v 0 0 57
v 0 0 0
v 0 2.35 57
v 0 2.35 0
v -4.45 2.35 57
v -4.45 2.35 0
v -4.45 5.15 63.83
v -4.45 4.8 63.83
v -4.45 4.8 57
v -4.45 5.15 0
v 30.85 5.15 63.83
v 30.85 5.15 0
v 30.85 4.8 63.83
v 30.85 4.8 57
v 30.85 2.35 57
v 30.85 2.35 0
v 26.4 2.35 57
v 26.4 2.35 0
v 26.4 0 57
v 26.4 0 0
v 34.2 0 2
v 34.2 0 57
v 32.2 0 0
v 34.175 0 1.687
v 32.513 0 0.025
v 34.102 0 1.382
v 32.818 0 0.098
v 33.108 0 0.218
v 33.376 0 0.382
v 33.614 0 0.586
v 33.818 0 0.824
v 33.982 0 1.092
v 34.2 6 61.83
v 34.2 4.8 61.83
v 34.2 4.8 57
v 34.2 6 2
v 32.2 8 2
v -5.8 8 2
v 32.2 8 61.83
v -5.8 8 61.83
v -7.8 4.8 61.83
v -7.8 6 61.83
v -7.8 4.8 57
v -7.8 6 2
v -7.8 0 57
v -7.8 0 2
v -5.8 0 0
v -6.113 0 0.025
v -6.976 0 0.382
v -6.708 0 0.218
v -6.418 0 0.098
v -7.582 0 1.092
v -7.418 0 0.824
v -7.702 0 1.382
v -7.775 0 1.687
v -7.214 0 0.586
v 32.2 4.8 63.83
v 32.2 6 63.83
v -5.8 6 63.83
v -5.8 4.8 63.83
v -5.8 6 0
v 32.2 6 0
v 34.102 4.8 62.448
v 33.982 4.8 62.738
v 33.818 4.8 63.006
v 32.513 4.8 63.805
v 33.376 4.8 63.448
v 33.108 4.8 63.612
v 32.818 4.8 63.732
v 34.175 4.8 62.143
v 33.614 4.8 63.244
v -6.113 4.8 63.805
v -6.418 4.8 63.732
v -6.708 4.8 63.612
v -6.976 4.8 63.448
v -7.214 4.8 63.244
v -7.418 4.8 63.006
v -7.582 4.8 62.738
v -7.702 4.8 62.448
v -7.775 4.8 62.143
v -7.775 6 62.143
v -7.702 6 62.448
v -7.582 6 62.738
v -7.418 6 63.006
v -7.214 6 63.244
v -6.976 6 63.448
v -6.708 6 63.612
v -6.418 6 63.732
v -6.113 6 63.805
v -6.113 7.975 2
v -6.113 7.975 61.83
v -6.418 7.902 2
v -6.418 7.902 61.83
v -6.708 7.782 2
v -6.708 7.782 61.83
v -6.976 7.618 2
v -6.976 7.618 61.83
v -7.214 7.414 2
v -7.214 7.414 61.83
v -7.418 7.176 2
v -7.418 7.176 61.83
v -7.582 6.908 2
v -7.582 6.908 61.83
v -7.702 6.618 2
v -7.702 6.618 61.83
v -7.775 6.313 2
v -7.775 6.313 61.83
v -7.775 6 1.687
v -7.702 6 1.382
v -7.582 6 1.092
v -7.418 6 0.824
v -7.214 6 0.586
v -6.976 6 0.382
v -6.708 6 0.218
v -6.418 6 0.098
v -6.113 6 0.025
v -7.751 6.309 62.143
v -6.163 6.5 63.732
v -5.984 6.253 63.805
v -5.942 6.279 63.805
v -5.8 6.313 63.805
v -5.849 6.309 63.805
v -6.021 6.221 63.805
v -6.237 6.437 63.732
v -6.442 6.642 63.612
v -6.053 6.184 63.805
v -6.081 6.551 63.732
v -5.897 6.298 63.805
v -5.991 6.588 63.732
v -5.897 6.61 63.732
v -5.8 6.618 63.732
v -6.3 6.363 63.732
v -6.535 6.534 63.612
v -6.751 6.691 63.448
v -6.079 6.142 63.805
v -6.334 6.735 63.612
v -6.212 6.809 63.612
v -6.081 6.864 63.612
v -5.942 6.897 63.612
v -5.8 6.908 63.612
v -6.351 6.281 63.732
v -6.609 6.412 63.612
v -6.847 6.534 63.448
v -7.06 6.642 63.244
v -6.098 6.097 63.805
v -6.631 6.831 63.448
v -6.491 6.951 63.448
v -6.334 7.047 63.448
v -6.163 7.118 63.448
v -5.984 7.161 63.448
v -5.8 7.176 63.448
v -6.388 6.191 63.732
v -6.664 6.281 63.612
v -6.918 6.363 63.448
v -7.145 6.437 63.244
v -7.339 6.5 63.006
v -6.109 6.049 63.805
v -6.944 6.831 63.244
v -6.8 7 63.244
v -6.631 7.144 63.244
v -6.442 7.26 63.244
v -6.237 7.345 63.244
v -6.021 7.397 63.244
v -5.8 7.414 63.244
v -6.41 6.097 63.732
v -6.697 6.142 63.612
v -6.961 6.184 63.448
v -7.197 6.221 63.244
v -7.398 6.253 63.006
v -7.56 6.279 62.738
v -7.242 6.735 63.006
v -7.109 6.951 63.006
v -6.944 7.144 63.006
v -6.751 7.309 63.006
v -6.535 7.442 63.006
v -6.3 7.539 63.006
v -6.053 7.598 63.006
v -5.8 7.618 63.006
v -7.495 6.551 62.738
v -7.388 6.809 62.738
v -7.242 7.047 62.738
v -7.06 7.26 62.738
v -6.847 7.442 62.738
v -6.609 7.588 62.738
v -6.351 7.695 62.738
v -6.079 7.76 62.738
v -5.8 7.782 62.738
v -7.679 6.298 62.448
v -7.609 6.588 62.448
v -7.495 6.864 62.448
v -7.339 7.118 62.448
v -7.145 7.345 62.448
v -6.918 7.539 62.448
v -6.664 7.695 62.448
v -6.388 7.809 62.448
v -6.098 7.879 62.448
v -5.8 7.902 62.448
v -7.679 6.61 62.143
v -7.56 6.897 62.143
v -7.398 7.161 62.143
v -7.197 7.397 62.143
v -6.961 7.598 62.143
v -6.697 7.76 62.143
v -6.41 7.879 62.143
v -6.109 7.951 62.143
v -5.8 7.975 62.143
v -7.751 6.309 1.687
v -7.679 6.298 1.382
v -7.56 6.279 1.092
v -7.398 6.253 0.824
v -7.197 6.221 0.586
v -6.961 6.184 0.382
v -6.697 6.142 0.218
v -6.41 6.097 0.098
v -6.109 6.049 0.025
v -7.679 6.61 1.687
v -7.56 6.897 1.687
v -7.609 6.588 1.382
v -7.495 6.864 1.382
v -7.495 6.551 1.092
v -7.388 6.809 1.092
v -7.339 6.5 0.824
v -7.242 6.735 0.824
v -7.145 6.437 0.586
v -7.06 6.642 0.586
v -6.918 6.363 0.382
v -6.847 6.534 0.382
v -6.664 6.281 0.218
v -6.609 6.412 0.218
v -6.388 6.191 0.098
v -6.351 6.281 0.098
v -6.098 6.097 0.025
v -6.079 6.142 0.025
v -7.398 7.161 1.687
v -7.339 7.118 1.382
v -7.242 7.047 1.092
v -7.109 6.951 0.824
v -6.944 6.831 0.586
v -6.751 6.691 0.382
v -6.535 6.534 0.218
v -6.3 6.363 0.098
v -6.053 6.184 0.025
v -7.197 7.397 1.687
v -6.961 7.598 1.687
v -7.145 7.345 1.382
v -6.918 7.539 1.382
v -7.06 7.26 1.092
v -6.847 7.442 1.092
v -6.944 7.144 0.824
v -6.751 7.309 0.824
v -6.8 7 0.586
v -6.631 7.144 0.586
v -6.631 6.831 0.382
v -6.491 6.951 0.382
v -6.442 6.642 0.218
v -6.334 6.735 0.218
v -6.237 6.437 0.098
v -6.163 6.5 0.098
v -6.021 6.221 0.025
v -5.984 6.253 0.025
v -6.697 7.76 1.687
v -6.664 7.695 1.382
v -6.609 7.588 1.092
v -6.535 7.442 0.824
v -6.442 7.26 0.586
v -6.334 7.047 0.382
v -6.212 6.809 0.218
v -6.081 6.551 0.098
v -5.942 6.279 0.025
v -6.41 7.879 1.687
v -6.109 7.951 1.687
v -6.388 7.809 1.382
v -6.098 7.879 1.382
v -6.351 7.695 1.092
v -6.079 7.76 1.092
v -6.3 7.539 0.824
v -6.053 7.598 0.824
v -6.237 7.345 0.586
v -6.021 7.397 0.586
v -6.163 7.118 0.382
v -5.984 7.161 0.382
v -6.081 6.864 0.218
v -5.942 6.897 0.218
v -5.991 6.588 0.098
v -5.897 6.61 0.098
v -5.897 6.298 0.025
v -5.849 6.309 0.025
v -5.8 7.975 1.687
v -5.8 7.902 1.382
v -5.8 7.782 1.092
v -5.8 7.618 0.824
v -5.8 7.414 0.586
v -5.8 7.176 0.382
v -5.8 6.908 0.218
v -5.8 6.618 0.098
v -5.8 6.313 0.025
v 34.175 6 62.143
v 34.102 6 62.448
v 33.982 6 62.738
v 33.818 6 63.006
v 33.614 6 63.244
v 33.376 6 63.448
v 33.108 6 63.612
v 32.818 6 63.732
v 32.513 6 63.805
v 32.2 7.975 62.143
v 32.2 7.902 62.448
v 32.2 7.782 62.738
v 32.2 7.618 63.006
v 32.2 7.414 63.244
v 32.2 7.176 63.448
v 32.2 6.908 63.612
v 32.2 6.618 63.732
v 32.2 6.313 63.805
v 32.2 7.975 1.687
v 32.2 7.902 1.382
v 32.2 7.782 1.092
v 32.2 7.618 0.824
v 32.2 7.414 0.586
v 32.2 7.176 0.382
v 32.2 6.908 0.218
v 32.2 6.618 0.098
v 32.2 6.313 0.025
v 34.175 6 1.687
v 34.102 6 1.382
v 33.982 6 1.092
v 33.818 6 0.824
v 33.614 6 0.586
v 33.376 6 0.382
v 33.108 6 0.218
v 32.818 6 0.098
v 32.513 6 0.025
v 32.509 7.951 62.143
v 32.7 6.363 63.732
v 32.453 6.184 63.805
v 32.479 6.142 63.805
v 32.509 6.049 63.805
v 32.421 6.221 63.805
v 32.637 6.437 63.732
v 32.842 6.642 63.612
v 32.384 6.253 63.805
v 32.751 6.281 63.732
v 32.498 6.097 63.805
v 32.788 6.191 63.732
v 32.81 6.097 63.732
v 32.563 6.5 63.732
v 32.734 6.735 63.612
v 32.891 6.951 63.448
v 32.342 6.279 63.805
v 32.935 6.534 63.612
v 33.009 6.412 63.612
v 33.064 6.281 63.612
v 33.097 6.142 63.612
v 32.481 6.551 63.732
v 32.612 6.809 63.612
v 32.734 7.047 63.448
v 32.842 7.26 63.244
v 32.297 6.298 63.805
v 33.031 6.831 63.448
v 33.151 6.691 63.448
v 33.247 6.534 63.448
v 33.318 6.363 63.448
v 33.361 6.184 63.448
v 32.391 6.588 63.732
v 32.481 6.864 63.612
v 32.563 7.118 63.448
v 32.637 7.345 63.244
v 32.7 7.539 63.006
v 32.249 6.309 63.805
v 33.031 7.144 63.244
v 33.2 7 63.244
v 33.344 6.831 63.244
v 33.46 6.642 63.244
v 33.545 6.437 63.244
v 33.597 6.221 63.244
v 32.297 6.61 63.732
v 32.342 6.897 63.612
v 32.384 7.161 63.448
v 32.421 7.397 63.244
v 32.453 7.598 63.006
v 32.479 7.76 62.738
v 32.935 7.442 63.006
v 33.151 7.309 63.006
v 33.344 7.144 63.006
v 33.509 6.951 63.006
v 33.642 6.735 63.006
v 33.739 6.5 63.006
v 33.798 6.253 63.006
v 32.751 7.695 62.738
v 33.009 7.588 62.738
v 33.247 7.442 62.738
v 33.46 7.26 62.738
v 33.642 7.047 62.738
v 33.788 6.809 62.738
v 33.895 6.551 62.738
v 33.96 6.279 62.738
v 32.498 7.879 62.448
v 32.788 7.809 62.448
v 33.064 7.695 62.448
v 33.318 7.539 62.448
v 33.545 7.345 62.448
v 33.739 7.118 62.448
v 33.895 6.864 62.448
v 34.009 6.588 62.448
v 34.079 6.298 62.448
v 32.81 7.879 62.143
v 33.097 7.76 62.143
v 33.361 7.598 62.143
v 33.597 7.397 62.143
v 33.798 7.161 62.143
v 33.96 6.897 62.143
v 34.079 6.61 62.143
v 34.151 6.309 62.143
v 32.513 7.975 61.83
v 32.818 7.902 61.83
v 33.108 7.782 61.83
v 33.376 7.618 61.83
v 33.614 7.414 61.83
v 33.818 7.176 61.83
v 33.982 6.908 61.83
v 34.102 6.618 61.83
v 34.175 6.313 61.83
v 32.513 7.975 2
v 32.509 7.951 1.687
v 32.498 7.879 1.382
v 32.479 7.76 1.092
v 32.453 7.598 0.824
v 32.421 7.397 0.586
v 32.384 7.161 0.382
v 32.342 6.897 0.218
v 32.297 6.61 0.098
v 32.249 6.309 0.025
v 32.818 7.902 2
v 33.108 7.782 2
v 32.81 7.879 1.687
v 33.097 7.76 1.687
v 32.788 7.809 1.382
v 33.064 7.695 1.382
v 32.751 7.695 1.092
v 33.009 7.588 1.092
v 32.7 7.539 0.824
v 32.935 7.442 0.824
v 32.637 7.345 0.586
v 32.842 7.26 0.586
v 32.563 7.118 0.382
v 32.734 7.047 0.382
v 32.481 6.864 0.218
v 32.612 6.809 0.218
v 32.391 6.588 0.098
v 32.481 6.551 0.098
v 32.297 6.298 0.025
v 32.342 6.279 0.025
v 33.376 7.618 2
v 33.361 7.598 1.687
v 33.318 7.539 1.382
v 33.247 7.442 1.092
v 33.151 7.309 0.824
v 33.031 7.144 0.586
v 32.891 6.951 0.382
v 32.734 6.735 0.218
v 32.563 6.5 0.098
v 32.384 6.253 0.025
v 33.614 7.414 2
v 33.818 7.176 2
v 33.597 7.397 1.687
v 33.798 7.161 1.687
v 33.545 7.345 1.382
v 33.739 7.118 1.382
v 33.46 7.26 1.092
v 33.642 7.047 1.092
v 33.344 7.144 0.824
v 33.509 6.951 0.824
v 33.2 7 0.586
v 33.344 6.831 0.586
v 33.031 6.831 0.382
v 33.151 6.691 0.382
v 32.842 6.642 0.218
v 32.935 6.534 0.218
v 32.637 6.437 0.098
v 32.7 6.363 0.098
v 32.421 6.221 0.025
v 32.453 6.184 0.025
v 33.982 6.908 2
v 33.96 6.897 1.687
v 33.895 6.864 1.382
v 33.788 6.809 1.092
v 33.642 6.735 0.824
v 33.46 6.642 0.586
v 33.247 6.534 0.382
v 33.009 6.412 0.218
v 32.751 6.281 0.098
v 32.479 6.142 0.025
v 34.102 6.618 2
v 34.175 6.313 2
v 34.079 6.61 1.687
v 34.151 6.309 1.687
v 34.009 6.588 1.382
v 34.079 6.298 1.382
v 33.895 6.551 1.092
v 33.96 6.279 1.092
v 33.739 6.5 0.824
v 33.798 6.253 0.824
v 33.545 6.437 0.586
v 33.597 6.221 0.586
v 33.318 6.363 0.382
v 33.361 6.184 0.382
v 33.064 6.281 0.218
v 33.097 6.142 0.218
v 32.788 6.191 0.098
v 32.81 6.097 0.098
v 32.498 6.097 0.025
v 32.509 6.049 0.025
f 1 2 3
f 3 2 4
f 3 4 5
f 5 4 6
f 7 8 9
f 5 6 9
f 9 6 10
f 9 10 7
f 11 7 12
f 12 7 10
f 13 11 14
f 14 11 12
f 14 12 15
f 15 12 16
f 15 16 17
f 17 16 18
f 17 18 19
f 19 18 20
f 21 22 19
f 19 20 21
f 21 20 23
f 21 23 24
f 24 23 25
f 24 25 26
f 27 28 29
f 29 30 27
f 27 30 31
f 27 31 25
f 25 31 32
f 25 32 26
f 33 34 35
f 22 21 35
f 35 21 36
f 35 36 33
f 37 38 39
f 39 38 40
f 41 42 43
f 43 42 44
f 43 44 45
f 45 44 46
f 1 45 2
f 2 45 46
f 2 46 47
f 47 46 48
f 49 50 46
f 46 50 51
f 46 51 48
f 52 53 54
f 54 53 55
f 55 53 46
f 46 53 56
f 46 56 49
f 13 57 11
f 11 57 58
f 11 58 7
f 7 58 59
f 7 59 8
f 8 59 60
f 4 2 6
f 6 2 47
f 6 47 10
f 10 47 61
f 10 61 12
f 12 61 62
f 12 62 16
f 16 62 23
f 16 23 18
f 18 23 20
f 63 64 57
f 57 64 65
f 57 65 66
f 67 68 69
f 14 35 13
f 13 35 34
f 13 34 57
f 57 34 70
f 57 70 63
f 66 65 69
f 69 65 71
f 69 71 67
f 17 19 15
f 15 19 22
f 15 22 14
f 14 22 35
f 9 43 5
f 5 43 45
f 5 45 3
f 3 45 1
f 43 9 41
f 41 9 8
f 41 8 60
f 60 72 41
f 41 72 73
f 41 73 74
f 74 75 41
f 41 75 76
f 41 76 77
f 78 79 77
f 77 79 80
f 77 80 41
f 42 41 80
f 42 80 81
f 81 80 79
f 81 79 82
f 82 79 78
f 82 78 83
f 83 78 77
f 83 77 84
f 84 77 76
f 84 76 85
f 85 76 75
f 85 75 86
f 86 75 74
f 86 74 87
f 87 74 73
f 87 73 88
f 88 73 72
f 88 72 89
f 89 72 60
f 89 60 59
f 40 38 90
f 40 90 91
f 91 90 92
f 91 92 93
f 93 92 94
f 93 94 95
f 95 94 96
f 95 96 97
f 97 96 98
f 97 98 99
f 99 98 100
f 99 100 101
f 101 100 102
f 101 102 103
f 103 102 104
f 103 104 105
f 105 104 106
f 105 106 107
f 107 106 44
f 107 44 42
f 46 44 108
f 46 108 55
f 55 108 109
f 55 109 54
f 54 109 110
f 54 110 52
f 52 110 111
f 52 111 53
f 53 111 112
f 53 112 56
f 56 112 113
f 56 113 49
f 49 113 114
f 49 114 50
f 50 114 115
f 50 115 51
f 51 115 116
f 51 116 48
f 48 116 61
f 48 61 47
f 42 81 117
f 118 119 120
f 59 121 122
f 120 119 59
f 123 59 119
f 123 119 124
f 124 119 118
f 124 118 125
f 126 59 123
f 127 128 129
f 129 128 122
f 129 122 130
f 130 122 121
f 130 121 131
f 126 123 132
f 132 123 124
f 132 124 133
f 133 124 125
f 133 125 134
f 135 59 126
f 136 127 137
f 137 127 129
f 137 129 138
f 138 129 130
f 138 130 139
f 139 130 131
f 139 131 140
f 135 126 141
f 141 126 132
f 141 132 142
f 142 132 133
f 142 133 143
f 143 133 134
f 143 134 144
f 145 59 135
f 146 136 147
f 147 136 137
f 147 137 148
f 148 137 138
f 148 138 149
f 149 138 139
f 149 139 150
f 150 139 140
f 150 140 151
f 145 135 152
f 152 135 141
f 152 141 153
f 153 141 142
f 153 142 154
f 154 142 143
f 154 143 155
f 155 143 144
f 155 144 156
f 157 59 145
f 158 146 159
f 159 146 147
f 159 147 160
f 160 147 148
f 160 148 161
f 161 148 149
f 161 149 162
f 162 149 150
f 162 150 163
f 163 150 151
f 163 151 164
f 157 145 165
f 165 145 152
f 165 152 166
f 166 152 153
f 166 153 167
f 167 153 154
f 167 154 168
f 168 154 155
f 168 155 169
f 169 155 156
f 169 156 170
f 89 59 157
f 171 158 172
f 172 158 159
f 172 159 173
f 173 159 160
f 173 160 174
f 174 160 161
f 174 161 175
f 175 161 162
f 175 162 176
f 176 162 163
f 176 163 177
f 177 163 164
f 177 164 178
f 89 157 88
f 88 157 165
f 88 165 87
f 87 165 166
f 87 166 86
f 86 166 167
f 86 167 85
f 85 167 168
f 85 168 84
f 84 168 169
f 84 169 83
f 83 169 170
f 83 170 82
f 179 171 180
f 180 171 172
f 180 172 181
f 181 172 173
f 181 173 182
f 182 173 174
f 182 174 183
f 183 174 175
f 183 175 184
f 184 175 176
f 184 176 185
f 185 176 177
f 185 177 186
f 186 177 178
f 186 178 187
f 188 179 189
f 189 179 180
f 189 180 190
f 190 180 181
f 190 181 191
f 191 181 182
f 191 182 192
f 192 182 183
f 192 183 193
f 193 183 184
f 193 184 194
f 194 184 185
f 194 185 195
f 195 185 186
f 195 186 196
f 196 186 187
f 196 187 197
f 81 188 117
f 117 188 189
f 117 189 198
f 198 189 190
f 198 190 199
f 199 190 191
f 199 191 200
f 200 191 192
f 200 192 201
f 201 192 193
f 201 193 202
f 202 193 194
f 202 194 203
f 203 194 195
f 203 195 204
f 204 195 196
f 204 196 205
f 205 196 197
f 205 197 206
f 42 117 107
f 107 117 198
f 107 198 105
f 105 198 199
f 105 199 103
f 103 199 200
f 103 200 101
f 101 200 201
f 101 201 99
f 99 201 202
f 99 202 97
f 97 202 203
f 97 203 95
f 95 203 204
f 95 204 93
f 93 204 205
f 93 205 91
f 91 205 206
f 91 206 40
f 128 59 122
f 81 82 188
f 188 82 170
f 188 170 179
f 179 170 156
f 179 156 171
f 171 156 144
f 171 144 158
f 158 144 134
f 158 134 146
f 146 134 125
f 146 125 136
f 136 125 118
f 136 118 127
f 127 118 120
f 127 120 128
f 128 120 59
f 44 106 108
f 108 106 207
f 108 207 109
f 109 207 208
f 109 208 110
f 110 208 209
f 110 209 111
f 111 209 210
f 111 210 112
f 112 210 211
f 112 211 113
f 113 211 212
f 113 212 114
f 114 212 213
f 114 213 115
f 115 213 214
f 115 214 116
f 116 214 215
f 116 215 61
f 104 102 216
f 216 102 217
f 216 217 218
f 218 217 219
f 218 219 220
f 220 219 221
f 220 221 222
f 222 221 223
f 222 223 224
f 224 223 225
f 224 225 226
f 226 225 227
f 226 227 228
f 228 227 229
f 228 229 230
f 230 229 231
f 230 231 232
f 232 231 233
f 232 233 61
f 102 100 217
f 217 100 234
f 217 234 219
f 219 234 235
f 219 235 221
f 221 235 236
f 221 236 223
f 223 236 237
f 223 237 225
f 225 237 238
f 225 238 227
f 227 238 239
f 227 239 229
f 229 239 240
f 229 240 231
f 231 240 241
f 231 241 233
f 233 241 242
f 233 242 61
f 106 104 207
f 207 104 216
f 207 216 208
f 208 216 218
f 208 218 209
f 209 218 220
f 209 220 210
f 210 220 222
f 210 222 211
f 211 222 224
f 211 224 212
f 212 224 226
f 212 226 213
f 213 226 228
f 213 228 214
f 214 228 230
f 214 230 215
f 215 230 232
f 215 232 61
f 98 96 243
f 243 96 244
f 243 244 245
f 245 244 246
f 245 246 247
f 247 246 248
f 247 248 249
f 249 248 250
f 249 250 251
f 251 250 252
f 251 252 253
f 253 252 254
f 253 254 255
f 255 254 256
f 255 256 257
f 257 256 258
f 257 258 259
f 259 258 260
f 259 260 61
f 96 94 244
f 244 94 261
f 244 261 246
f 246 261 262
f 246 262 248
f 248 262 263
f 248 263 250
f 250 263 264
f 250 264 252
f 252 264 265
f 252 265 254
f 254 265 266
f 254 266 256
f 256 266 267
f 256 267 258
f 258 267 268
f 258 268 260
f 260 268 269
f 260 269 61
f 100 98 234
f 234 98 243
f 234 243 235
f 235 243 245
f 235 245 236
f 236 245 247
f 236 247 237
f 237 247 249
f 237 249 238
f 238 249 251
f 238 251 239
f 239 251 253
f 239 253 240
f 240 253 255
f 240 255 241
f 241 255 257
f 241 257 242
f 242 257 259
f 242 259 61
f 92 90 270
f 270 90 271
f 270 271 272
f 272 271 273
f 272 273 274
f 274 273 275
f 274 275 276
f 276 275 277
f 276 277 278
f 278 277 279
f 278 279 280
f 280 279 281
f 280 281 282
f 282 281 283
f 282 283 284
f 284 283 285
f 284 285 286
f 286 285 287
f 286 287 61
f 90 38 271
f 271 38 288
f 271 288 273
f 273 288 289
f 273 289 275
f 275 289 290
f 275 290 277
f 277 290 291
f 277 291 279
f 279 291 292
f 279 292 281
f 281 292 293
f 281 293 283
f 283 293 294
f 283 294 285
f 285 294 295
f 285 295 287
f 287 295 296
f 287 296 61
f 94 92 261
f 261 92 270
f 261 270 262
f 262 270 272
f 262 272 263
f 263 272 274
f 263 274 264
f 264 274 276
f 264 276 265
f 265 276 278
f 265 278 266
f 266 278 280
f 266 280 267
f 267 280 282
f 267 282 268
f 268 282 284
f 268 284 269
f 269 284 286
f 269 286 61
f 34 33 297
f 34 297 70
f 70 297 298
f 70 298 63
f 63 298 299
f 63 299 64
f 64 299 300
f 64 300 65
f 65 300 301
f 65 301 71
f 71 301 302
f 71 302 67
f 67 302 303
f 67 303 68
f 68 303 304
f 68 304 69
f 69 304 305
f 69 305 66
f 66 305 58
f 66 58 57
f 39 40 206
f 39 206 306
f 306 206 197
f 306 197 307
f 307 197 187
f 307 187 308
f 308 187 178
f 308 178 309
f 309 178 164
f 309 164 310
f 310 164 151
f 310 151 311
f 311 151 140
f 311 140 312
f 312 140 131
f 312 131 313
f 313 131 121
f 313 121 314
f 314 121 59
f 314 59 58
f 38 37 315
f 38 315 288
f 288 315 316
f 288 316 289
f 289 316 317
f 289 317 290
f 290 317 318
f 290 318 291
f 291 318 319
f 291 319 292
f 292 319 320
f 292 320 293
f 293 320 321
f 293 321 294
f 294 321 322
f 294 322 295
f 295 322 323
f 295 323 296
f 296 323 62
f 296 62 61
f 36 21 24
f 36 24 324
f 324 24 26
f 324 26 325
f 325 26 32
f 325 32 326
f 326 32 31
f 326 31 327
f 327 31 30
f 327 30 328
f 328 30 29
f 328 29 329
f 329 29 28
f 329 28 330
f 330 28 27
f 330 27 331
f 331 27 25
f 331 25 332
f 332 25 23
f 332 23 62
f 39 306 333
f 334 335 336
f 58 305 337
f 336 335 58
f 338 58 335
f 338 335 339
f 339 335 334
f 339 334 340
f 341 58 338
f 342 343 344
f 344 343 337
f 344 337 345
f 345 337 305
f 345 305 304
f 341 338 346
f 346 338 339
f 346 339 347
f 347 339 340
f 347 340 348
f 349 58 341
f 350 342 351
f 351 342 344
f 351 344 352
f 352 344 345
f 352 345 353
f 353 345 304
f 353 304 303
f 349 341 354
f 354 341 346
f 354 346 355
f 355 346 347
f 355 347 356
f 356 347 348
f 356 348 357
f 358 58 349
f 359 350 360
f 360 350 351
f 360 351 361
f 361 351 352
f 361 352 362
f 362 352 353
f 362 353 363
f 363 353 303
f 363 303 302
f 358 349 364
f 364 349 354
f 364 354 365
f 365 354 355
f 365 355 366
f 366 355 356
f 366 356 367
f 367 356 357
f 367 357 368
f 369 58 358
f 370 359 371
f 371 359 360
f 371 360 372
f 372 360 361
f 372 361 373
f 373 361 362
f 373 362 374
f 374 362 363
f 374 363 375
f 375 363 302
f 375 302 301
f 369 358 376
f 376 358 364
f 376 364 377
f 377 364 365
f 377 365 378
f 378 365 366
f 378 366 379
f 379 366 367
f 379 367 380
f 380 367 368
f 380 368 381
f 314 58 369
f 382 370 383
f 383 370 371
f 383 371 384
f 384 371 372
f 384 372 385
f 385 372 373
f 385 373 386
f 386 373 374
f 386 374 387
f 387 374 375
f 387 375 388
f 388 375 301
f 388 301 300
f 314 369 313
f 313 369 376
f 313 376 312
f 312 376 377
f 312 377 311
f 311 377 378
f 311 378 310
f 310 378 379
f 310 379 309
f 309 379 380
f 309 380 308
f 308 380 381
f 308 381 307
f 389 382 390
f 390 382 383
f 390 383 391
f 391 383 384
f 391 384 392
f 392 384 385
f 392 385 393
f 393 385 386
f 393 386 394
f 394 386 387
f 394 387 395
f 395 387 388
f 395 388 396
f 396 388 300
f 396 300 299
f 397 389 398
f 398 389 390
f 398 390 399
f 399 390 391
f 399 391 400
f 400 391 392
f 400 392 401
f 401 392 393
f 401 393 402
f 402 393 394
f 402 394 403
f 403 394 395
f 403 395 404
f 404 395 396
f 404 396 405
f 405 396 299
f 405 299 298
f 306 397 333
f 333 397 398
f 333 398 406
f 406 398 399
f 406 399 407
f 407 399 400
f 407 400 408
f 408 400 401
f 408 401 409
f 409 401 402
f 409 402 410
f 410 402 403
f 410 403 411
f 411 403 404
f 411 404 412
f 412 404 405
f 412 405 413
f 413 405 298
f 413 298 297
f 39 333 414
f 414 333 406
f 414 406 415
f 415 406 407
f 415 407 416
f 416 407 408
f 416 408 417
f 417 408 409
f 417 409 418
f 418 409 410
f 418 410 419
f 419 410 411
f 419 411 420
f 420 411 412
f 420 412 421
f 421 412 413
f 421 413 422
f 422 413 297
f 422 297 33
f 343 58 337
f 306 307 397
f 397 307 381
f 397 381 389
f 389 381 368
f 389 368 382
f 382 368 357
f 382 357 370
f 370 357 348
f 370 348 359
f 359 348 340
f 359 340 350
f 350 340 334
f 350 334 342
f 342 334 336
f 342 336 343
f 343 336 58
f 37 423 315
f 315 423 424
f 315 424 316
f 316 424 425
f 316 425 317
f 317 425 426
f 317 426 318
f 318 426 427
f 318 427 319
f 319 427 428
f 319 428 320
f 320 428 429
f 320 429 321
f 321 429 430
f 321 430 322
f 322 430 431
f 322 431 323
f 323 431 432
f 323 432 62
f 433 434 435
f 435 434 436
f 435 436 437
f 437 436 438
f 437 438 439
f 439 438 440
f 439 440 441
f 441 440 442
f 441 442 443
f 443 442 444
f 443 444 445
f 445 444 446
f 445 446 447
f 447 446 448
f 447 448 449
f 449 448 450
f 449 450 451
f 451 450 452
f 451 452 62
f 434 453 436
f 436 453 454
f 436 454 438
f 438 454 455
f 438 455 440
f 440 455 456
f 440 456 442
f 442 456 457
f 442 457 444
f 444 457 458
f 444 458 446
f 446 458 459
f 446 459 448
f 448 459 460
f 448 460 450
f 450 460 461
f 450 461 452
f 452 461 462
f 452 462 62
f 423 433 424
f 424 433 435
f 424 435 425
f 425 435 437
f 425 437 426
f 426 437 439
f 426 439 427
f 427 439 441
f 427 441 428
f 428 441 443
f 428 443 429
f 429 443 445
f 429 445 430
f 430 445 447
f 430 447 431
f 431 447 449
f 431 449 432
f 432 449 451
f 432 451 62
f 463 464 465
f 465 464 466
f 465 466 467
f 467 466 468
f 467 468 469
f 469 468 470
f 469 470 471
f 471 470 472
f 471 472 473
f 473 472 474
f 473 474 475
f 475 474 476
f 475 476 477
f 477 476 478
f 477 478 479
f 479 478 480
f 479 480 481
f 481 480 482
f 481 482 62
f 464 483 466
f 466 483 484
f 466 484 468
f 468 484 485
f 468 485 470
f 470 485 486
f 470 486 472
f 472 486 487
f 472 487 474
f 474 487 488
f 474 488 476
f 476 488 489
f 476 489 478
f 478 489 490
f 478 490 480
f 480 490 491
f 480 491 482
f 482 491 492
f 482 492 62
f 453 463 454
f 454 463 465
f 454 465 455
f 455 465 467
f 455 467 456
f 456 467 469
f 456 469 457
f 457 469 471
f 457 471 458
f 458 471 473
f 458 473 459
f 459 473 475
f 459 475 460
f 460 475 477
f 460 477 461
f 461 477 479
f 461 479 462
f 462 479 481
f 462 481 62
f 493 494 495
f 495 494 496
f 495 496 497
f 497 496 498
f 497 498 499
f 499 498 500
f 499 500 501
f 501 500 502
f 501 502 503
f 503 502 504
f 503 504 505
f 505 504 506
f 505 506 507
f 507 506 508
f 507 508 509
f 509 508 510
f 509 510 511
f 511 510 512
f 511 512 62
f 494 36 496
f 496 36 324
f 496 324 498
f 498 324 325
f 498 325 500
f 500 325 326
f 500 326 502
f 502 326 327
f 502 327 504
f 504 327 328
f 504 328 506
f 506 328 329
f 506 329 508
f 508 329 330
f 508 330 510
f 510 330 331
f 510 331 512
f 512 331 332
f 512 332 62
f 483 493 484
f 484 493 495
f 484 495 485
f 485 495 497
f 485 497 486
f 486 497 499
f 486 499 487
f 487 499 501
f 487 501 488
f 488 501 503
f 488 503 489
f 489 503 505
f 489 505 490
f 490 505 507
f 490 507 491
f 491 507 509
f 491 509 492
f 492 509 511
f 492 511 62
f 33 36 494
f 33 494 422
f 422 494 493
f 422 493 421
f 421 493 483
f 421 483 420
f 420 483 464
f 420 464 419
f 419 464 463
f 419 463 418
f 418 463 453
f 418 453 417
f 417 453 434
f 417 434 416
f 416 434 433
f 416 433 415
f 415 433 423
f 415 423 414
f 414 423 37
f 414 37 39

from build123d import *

# Parameters (mm, degrees)
BOSS_EXTRUDE1_DEPTH = 63.83
SKETCH2_W           = 42
SKETCH2_H           = 4.8
CUT_EXTRUDE1_DEPTH  = 6.83
FILLET1_R           = 2


with BuildPart() as part:
    # Sketch1 → Boss-Extrude1 (new body)
    with BuildSketch(Plane.XY):
        Polygon((-4.45, 5.15), (30.85, 5.15), (30.85, 2.35), (26.4, 2.35), (26.4, 0), (34.2, 0), (34.2, 8), (-7.8, 8), (-7.8, 0), (0, 0), (0, 2.35), (-4.45, 2.35), align=None)
    extrude(amount=BOSS_EXTRUDE1_DEPTH)

    # Sketch2 → Cut-Extrude1 (cut)
    with BuildSketch(Plane.XY.offset(63.83)):
        with Locations((13.2, 2.4)):
            Rectangle(SKETCH2_W, SKETCH2_H)
    extrude(amount=-CUT_EXTRUDE1_DEPTH, mode=Mode.SUBTRACT)

    # Fillet1
    fillet1_edges = [part.edges().sort_by_distance(p)[0] for p in [
        (-7.8, 4, 0),
        (13.2, 8, 0),
        (34.2, 4, 0),
        (-7.8, 8, 31.915),
        (34.2, 8, 31.915),
        (34.2, 6.4, 63.83),
        (13.2, 8, 63.83),
        (-7.8, 6.4, 63.83),
    ]]
    fillet(fillet1_edges, radius=FILLET1_R)


solid = part.part
